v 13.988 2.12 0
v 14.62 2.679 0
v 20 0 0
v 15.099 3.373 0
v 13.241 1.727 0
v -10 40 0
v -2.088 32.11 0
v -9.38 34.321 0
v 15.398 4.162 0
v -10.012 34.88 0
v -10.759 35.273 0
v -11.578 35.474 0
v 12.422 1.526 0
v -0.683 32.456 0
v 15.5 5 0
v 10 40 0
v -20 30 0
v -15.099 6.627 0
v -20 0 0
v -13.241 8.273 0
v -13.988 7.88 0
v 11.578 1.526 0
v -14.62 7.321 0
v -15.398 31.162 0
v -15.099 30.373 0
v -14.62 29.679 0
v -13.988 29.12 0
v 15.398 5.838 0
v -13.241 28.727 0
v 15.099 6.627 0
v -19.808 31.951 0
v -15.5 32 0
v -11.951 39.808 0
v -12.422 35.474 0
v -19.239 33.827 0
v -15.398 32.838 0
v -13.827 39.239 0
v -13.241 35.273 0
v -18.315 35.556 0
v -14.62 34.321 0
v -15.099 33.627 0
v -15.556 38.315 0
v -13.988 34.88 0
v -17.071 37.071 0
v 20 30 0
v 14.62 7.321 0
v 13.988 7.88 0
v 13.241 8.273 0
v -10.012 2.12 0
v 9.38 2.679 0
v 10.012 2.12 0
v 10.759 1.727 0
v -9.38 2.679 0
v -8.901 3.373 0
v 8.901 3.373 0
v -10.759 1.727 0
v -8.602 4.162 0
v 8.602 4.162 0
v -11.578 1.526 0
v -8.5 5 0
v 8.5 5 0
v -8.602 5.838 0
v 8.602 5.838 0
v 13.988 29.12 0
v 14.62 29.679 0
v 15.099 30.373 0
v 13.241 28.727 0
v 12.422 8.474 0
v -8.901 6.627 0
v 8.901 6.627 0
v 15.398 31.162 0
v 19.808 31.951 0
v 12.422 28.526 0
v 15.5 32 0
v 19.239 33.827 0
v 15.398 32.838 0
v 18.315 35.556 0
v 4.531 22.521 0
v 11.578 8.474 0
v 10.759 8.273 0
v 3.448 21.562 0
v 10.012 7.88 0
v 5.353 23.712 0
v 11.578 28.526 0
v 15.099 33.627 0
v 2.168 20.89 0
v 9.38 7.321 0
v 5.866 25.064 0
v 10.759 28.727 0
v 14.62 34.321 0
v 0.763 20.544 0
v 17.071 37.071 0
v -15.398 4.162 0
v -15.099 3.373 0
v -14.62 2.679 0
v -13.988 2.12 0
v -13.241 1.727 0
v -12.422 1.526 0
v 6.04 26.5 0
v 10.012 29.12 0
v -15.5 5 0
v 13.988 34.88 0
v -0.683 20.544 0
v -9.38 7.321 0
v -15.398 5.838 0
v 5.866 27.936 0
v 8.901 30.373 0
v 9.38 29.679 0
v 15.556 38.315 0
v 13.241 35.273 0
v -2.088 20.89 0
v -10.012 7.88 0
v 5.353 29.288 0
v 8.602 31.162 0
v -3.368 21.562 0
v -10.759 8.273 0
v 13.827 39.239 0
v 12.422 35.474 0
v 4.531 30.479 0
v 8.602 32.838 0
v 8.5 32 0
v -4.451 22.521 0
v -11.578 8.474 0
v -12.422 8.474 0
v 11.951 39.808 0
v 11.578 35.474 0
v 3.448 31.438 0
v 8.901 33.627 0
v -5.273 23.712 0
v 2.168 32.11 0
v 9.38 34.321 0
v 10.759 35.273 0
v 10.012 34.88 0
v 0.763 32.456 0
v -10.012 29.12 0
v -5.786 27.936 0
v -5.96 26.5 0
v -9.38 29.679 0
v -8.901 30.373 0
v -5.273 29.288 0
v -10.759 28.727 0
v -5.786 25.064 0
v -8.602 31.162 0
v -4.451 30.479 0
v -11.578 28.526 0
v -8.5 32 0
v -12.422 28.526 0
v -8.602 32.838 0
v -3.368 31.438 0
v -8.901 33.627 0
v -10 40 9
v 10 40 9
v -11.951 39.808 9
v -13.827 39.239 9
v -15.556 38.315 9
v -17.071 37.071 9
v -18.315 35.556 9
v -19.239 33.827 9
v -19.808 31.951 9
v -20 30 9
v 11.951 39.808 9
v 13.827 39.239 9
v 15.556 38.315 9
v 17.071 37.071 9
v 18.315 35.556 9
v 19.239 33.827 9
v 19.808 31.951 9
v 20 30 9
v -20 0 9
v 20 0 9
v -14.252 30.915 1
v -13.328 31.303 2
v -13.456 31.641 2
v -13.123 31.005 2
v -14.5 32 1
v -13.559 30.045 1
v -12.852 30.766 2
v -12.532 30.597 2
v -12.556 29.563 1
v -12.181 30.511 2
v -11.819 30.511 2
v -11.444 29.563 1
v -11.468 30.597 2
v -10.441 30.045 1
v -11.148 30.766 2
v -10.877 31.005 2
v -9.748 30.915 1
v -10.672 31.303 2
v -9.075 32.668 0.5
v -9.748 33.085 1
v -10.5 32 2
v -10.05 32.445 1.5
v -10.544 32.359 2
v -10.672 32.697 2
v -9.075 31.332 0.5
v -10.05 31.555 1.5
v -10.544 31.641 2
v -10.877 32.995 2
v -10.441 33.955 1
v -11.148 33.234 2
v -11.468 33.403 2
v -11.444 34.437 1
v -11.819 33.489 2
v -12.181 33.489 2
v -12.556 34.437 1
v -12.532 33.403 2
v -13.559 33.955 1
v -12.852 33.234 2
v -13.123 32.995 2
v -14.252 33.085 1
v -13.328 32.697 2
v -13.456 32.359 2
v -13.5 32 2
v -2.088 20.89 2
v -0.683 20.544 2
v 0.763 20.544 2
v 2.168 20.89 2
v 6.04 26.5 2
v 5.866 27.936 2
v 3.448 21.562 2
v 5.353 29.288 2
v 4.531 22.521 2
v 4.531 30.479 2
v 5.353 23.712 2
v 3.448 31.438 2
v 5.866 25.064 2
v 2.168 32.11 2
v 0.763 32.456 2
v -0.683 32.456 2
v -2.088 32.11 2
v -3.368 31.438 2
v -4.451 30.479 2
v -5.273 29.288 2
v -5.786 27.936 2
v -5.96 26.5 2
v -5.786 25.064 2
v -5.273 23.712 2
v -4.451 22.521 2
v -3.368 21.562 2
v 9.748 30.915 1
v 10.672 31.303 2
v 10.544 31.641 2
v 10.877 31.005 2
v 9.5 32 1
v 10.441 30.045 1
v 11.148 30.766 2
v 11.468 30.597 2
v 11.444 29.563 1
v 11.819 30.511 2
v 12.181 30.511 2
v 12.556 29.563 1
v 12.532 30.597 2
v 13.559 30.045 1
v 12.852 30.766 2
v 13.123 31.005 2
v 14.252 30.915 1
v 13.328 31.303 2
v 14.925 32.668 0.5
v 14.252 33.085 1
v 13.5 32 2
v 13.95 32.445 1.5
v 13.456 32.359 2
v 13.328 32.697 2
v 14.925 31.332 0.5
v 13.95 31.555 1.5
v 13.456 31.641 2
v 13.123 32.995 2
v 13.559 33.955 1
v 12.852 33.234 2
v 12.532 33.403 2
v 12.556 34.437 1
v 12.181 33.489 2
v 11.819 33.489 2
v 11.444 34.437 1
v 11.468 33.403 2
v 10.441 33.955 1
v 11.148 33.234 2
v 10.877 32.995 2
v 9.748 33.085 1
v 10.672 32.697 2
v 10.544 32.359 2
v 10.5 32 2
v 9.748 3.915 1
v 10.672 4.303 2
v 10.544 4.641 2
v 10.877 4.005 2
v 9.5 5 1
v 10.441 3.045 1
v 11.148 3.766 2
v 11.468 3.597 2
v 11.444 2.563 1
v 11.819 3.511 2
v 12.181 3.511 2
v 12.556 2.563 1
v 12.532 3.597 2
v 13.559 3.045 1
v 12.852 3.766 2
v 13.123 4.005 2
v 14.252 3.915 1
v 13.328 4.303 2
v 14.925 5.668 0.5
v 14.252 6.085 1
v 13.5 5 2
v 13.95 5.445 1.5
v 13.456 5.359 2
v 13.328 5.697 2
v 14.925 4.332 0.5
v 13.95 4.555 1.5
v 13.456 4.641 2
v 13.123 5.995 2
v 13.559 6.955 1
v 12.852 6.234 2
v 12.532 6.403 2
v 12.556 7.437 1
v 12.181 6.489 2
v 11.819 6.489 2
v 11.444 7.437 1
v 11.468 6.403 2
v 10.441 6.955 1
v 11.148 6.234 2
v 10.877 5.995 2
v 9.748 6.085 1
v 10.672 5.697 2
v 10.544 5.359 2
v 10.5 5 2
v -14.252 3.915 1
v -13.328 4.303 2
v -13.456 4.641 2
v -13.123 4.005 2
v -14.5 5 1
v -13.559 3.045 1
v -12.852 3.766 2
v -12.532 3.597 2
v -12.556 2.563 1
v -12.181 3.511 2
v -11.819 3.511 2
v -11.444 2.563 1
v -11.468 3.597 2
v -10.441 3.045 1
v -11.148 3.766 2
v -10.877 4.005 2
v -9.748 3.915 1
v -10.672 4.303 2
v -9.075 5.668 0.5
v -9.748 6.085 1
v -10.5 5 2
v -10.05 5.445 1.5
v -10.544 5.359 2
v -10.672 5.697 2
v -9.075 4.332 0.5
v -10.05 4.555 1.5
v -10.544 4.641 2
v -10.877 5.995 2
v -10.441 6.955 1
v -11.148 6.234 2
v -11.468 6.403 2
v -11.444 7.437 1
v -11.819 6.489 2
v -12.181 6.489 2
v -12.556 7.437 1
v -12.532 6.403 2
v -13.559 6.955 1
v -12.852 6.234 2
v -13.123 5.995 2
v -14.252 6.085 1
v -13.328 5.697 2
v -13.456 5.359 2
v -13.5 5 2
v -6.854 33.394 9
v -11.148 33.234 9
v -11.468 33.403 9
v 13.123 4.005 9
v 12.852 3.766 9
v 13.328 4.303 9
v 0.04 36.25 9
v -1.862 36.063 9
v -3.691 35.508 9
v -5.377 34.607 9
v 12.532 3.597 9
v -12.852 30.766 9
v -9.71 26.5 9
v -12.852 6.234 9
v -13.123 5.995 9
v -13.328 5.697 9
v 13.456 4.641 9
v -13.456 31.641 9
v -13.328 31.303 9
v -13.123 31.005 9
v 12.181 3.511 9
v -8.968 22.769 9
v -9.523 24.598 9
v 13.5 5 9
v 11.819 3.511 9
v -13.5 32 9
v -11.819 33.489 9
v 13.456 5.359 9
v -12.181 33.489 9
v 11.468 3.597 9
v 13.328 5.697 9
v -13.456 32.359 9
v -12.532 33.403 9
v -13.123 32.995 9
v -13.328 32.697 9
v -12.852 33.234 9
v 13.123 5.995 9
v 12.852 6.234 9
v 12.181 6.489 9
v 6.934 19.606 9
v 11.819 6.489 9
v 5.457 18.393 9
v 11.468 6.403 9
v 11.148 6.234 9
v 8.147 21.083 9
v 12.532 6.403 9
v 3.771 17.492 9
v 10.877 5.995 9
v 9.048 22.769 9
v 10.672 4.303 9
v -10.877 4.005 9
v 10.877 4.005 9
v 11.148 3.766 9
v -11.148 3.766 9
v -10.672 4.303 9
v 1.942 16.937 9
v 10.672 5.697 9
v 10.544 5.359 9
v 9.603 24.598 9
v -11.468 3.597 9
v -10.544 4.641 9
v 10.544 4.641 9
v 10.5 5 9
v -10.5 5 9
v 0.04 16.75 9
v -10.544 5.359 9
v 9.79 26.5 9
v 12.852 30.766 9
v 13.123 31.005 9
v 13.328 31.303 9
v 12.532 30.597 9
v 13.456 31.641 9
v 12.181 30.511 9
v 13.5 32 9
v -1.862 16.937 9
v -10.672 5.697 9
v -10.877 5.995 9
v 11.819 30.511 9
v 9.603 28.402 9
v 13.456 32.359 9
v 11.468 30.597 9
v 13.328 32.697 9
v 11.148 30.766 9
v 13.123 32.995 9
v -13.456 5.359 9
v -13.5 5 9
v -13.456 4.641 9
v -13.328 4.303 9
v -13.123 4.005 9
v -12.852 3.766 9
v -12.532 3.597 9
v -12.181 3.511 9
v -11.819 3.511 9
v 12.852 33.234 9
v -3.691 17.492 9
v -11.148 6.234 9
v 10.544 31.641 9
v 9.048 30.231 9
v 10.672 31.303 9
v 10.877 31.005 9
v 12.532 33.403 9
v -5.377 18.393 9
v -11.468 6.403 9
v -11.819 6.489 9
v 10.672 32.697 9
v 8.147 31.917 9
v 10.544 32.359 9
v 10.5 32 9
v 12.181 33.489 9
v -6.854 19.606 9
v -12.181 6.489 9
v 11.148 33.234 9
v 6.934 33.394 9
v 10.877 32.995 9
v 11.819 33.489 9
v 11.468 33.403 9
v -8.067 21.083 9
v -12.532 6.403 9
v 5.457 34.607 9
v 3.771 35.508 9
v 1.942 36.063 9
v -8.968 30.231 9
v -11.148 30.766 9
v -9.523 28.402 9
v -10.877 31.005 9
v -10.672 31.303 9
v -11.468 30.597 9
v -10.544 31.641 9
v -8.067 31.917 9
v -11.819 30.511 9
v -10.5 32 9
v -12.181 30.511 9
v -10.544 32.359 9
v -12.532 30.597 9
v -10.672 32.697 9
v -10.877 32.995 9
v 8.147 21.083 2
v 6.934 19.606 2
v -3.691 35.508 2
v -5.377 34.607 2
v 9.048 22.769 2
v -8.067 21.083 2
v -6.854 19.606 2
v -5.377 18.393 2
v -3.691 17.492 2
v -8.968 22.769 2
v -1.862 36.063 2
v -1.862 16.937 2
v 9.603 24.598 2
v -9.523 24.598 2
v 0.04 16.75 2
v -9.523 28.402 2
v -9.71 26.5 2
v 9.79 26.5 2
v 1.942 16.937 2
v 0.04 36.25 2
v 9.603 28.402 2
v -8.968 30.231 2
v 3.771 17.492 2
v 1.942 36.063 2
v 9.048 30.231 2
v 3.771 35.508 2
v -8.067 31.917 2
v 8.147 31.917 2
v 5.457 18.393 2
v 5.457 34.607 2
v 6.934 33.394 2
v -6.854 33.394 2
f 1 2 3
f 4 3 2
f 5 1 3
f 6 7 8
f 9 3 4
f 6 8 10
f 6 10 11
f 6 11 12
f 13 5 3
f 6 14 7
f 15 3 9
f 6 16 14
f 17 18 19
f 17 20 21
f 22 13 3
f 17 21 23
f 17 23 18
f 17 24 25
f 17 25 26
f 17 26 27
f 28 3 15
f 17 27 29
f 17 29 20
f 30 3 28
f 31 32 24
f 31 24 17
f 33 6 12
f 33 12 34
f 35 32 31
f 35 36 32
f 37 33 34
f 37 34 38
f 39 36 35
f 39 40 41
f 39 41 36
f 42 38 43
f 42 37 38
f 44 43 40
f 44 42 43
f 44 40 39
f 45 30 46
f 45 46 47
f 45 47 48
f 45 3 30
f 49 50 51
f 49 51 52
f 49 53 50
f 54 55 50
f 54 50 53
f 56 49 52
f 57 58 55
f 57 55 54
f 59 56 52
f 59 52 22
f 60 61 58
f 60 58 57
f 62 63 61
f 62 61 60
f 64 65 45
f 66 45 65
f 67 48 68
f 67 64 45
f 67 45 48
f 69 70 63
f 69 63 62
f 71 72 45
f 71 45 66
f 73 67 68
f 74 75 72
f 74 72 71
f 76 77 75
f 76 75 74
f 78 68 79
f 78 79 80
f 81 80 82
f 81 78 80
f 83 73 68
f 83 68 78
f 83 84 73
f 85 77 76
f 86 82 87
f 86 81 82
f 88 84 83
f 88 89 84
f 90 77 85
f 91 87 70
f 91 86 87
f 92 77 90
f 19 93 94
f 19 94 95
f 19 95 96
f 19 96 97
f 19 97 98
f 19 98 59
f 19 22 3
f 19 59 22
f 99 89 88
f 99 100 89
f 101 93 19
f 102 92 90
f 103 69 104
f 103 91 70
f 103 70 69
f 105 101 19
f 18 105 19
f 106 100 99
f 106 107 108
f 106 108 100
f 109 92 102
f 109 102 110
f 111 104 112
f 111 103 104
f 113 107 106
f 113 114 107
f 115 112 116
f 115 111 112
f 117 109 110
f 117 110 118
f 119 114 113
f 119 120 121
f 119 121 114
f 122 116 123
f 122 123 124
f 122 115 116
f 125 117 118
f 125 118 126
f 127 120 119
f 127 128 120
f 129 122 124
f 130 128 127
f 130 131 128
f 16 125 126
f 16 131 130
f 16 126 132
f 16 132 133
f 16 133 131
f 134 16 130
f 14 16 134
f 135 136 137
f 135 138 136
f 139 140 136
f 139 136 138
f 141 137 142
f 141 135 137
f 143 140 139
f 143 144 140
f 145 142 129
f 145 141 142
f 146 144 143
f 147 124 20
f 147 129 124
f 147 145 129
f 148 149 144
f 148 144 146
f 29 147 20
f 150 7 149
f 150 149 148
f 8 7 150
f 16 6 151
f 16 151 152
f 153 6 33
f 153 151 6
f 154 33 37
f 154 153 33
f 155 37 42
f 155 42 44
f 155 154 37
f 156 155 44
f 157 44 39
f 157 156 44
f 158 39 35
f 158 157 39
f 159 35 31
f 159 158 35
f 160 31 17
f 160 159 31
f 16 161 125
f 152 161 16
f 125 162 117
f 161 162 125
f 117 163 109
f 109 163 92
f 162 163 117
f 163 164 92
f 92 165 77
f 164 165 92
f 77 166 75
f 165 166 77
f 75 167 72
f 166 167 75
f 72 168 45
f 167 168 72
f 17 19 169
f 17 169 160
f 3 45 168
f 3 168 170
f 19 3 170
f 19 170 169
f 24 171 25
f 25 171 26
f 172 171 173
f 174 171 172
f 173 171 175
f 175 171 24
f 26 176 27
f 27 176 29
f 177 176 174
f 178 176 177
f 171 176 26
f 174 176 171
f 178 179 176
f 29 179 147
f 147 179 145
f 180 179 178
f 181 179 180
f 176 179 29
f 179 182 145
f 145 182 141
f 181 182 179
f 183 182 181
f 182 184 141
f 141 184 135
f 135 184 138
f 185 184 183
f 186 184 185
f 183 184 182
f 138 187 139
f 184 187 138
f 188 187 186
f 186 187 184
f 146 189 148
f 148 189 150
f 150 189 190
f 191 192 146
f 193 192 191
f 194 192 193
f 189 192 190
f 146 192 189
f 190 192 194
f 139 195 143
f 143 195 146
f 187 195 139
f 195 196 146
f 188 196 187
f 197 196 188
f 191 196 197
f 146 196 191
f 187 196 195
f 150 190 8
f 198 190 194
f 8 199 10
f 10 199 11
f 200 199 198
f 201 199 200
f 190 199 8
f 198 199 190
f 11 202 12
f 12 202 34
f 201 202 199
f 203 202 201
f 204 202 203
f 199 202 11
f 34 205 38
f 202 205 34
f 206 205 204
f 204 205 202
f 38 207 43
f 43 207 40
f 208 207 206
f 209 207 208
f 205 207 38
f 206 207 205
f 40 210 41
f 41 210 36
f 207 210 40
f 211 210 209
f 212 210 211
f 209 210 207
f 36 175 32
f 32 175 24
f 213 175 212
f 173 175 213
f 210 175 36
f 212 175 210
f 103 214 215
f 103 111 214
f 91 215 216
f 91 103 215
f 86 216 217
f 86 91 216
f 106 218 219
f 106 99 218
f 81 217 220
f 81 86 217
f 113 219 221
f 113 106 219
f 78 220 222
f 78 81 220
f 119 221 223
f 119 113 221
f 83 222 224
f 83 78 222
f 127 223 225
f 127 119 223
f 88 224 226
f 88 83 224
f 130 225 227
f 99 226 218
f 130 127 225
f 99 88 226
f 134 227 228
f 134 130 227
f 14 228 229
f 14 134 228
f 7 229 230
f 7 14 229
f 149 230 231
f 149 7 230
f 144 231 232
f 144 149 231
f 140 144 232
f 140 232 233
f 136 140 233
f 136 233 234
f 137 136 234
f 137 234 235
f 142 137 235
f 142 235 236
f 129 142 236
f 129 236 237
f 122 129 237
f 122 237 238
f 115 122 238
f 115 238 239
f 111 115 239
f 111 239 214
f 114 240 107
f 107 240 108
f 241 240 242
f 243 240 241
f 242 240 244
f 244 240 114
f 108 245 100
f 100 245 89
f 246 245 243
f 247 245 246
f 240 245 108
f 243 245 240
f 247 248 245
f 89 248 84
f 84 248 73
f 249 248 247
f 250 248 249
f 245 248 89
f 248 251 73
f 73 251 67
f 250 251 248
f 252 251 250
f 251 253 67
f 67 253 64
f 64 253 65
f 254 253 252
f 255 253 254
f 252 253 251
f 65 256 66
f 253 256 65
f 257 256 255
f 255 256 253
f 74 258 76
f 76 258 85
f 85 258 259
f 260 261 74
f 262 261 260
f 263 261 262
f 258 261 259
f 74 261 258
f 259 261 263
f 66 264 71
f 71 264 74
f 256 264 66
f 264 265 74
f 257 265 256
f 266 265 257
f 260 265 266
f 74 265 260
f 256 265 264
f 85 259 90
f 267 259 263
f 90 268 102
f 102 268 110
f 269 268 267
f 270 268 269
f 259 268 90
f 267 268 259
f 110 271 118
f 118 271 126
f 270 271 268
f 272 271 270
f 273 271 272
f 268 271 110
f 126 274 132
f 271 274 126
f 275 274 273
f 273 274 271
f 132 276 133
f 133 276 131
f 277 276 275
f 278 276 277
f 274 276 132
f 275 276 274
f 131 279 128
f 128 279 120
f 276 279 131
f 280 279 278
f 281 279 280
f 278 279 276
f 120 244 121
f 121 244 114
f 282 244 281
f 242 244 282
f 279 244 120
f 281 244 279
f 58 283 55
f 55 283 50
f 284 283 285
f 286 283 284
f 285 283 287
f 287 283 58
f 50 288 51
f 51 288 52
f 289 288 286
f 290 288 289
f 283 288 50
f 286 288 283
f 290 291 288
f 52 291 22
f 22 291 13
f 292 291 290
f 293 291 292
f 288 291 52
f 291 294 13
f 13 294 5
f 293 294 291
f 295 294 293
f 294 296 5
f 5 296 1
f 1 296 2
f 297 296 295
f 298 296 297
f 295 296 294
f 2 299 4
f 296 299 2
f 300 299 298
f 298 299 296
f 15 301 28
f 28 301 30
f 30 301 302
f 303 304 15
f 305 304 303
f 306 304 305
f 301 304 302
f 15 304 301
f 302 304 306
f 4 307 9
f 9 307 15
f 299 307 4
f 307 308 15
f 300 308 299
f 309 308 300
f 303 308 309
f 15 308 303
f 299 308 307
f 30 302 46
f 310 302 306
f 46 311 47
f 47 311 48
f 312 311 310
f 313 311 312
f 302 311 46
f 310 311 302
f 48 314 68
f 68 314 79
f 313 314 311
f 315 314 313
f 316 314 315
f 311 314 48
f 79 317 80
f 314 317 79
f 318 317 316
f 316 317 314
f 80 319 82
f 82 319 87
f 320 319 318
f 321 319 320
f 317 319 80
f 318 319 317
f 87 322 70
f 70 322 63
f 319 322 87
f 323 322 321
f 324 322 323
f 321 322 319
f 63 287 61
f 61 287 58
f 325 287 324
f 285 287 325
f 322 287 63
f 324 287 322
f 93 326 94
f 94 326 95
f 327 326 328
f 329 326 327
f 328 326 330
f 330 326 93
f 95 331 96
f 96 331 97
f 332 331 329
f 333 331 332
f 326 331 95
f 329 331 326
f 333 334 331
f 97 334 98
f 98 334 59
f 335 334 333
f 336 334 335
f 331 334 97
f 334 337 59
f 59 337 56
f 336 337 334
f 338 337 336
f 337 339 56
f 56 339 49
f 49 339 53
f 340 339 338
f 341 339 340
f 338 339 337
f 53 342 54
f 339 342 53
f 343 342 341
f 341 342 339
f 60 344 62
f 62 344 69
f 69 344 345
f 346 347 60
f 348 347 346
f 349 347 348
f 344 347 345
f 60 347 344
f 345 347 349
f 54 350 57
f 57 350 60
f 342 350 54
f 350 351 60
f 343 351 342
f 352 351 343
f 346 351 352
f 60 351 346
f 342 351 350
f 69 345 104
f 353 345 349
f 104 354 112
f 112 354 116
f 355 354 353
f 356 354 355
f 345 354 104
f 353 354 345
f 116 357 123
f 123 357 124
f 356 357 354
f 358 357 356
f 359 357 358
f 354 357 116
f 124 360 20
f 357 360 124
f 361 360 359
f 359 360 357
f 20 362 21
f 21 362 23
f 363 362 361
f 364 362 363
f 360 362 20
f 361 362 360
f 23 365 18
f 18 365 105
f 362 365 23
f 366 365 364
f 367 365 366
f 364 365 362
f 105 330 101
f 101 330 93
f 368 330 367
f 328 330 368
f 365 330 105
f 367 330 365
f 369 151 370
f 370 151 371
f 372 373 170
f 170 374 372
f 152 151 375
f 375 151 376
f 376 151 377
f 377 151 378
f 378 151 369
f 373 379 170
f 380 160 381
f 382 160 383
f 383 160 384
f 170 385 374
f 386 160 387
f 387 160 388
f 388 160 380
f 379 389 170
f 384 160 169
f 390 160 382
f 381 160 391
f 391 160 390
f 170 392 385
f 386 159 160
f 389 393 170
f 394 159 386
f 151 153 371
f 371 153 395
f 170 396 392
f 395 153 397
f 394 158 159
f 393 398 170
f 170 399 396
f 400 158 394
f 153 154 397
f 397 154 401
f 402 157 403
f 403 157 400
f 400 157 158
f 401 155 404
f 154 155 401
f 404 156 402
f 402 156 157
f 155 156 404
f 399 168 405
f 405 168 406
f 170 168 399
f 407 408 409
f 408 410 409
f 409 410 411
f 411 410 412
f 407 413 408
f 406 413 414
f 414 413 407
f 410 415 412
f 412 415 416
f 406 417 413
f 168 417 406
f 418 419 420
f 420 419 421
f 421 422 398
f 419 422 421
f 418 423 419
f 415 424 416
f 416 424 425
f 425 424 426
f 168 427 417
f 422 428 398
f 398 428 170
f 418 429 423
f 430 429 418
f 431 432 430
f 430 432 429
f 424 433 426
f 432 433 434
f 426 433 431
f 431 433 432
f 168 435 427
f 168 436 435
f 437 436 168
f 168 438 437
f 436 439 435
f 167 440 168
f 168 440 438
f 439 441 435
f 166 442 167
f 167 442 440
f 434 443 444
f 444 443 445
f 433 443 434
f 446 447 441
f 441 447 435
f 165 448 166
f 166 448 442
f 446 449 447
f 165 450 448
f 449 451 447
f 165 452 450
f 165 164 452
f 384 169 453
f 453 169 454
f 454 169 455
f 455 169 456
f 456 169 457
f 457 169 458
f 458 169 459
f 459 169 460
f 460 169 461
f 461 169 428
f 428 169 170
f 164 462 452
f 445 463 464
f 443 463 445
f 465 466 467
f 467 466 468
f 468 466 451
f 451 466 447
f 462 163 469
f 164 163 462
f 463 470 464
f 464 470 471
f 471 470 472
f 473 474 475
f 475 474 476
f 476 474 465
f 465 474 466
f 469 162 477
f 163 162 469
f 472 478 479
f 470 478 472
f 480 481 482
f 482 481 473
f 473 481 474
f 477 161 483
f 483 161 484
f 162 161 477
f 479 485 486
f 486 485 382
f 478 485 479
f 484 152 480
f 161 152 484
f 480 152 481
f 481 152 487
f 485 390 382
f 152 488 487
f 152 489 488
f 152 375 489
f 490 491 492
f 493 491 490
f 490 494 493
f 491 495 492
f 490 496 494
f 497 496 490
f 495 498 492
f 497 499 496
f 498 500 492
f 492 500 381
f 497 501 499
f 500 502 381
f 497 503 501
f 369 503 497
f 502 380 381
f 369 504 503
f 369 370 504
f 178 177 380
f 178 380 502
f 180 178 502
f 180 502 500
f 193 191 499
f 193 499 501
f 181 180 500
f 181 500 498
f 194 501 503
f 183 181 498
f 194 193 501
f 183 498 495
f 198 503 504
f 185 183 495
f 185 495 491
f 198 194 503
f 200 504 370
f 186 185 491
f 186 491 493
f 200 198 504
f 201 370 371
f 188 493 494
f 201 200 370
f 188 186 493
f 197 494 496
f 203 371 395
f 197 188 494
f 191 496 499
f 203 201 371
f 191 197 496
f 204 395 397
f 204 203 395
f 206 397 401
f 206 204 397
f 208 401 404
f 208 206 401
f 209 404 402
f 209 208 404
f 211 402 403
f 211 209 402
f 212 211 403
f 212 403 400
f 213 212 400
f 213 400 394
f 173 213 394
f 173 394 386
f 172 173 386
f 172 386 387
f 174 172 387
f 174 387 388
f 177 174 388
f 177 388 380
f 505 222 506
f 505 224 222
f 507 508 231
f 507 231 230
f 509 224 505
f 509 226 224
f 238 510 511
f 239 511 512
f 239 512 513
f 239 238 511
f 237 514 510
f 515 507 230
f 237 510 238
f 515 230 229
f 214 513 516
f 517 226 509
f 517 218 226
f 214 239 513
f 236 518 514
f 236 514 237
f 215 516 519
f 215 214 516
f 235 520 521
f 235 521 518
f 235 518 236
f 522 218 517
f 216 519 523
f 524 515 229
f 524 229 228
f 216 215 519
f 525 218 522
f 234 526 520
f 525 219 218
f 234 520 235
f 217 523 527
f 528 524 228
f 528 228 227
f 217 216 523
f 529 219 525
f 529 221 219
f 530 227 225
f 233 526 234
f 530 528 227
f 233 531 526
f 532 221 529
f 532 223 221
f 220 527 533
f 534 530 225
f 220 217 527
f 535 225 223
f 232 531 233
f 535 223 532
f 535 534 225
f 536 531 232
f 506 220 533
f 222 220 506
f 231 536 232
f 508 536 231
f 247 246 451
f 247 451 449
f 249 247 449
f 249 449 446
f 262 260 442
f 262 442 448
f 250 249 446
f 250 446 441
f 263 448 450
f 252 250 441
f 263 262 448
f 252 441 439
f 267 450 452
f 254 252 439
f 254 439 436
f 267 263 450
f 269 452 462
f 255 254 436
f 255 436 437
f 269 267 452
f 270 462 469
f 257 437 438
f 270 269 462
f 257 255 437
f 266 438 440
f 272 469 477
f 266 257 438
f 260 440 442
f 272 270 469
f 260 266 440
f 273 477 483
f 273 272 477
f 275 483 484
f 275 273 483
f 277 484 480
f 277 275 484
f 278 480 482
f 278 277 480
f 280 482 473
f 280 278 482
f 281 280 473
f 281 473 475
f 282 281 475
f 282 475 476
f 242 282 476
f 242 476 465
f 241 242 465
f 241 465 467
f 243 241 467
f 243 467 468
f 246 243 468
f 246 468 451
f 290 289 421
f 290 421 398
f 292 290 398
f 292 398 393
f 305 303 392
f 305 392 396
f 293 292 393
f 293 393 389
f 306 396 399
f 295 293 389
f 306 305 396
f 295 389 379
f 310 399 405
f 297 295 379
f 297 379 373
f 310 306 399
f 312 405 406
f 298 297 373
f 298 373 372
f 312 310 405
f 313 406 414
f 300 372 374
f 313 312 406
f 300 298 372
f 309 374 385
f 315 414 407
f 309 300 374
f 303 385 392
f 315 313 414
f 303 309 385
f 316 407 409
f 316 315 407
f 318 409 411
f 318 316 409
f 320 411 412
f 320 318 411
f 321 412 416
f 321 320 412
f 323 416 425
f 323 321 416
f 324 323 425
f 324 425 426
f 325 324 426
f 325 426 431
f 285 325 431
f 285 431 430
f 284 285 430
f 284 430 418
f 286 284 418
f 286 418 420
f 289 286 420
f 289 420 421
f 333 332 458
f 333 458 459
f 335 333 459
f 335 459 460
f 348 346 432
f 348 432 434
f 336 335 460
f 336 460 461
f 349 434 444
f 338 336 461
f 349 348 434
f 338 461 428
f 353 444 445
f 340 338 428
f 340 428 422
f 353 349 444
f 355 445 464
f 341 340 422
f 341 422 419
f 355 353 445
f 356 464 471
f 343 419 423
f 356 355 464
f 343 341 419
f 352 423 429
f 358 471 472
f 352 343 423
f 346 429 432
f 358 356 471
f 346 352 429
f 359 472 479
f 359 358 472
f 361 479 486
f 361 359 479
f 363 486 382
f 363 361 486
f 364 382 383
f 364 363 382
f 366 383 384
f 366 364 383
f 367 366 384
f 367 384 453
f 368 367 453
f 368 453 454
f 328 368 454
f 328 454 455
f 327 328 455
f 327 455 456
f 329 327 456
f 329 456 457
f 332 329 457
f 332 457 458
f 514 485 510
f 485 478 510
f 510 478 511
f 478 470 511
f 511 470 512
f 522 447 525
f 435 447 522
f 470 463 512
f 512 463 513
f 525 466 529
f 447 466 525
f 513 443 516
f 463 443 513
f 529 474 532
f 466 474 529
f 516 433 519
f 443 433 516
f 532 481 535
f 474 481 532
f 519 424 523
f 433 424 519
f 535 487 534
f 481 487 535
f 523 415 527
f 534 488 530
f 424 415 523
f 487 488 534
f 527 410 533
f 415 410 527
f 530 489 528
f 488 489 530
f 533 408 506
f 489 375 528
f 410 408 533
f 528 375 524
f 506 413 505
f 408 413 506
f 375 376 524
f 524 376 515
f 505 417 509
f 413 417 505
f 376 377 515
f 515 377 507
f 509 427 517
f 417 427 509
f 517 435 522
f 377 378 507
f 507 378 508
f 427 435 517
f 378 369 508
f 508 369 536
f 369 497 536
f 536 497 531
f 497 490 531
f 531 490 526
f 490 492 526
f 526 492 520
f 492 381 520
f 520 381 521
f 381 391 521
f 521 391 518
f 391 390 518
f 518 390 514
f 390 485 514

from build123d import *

# Parameters (mm, degrees)
SKETCH_W     = 40
SKETCH_H     = 40
SKETCH_R     = 6
SKETCH_R_2   = 1.5
PAD_DEPTH    = 9
SKETCH001_R  = 9.75
POCKET_DEPTH = 7
CHAMFER_SIZE = 2
FILLET_R     = 10


with BuildPart() as part:
    # Sketch → Pad (new body)
    with BuildSketch(Plane.XY):
        with Locations((0, 20)):
            Rectangle(SKETCH_W, SKETCH_H)
        with Locations((0.040094, 26.5)):
            Circle(SKETCH_R, mode=Mode.SUBTRACT)
        with Locations((-12, 32)):
            Circle(SKETCH_R_2, mode=Mode.SUBTRACT)
        with Locations((12, 32)):
            Circle(SKETCH_R_2, mode=Mode.SUBTRACT)
        with Locations((-12, 5)):
            Circle(SKETCH_R_2, mode=Mode.SUBTRACT)
        with Locations((12, 5)):
            Circle(SKETCH_R_2, mode=Mode.SUBTRACT)
    extrude(amount=PAD_DEPTH)

    # Sketch001 (on Face11 of Pad) → Pocket (cut)
    with BuildSketch(Plane.XY.offset(9)):
        with Locations((0.040094, 26.5)):
            Circle(SKETCH001_R)
    extrude(amount=-POCKET_DEPTH, mode=Mode.SUBTRACT)

    # Chamfer
    chamfer_edges = [part.edges().sort_by_distance(p)[0] for p in [
        (-13.5, 32, 0),
        (10.5, 32, 0),
        (10.5, 5, 0),
        (-13.5, 5, 0),
    ]]
    chamfer(chamfer_edges, length=CHAMFER_SIZE)

    # Fillet
    fillet_edges = [part.edges().sort_by_distance(p)[0] for p in [
        (20, 40, 4.5),
        (-20, 40, 4.5),
    ]]
    fillet(fillet_edges, radius=FILLET_R)


solid = part.part
